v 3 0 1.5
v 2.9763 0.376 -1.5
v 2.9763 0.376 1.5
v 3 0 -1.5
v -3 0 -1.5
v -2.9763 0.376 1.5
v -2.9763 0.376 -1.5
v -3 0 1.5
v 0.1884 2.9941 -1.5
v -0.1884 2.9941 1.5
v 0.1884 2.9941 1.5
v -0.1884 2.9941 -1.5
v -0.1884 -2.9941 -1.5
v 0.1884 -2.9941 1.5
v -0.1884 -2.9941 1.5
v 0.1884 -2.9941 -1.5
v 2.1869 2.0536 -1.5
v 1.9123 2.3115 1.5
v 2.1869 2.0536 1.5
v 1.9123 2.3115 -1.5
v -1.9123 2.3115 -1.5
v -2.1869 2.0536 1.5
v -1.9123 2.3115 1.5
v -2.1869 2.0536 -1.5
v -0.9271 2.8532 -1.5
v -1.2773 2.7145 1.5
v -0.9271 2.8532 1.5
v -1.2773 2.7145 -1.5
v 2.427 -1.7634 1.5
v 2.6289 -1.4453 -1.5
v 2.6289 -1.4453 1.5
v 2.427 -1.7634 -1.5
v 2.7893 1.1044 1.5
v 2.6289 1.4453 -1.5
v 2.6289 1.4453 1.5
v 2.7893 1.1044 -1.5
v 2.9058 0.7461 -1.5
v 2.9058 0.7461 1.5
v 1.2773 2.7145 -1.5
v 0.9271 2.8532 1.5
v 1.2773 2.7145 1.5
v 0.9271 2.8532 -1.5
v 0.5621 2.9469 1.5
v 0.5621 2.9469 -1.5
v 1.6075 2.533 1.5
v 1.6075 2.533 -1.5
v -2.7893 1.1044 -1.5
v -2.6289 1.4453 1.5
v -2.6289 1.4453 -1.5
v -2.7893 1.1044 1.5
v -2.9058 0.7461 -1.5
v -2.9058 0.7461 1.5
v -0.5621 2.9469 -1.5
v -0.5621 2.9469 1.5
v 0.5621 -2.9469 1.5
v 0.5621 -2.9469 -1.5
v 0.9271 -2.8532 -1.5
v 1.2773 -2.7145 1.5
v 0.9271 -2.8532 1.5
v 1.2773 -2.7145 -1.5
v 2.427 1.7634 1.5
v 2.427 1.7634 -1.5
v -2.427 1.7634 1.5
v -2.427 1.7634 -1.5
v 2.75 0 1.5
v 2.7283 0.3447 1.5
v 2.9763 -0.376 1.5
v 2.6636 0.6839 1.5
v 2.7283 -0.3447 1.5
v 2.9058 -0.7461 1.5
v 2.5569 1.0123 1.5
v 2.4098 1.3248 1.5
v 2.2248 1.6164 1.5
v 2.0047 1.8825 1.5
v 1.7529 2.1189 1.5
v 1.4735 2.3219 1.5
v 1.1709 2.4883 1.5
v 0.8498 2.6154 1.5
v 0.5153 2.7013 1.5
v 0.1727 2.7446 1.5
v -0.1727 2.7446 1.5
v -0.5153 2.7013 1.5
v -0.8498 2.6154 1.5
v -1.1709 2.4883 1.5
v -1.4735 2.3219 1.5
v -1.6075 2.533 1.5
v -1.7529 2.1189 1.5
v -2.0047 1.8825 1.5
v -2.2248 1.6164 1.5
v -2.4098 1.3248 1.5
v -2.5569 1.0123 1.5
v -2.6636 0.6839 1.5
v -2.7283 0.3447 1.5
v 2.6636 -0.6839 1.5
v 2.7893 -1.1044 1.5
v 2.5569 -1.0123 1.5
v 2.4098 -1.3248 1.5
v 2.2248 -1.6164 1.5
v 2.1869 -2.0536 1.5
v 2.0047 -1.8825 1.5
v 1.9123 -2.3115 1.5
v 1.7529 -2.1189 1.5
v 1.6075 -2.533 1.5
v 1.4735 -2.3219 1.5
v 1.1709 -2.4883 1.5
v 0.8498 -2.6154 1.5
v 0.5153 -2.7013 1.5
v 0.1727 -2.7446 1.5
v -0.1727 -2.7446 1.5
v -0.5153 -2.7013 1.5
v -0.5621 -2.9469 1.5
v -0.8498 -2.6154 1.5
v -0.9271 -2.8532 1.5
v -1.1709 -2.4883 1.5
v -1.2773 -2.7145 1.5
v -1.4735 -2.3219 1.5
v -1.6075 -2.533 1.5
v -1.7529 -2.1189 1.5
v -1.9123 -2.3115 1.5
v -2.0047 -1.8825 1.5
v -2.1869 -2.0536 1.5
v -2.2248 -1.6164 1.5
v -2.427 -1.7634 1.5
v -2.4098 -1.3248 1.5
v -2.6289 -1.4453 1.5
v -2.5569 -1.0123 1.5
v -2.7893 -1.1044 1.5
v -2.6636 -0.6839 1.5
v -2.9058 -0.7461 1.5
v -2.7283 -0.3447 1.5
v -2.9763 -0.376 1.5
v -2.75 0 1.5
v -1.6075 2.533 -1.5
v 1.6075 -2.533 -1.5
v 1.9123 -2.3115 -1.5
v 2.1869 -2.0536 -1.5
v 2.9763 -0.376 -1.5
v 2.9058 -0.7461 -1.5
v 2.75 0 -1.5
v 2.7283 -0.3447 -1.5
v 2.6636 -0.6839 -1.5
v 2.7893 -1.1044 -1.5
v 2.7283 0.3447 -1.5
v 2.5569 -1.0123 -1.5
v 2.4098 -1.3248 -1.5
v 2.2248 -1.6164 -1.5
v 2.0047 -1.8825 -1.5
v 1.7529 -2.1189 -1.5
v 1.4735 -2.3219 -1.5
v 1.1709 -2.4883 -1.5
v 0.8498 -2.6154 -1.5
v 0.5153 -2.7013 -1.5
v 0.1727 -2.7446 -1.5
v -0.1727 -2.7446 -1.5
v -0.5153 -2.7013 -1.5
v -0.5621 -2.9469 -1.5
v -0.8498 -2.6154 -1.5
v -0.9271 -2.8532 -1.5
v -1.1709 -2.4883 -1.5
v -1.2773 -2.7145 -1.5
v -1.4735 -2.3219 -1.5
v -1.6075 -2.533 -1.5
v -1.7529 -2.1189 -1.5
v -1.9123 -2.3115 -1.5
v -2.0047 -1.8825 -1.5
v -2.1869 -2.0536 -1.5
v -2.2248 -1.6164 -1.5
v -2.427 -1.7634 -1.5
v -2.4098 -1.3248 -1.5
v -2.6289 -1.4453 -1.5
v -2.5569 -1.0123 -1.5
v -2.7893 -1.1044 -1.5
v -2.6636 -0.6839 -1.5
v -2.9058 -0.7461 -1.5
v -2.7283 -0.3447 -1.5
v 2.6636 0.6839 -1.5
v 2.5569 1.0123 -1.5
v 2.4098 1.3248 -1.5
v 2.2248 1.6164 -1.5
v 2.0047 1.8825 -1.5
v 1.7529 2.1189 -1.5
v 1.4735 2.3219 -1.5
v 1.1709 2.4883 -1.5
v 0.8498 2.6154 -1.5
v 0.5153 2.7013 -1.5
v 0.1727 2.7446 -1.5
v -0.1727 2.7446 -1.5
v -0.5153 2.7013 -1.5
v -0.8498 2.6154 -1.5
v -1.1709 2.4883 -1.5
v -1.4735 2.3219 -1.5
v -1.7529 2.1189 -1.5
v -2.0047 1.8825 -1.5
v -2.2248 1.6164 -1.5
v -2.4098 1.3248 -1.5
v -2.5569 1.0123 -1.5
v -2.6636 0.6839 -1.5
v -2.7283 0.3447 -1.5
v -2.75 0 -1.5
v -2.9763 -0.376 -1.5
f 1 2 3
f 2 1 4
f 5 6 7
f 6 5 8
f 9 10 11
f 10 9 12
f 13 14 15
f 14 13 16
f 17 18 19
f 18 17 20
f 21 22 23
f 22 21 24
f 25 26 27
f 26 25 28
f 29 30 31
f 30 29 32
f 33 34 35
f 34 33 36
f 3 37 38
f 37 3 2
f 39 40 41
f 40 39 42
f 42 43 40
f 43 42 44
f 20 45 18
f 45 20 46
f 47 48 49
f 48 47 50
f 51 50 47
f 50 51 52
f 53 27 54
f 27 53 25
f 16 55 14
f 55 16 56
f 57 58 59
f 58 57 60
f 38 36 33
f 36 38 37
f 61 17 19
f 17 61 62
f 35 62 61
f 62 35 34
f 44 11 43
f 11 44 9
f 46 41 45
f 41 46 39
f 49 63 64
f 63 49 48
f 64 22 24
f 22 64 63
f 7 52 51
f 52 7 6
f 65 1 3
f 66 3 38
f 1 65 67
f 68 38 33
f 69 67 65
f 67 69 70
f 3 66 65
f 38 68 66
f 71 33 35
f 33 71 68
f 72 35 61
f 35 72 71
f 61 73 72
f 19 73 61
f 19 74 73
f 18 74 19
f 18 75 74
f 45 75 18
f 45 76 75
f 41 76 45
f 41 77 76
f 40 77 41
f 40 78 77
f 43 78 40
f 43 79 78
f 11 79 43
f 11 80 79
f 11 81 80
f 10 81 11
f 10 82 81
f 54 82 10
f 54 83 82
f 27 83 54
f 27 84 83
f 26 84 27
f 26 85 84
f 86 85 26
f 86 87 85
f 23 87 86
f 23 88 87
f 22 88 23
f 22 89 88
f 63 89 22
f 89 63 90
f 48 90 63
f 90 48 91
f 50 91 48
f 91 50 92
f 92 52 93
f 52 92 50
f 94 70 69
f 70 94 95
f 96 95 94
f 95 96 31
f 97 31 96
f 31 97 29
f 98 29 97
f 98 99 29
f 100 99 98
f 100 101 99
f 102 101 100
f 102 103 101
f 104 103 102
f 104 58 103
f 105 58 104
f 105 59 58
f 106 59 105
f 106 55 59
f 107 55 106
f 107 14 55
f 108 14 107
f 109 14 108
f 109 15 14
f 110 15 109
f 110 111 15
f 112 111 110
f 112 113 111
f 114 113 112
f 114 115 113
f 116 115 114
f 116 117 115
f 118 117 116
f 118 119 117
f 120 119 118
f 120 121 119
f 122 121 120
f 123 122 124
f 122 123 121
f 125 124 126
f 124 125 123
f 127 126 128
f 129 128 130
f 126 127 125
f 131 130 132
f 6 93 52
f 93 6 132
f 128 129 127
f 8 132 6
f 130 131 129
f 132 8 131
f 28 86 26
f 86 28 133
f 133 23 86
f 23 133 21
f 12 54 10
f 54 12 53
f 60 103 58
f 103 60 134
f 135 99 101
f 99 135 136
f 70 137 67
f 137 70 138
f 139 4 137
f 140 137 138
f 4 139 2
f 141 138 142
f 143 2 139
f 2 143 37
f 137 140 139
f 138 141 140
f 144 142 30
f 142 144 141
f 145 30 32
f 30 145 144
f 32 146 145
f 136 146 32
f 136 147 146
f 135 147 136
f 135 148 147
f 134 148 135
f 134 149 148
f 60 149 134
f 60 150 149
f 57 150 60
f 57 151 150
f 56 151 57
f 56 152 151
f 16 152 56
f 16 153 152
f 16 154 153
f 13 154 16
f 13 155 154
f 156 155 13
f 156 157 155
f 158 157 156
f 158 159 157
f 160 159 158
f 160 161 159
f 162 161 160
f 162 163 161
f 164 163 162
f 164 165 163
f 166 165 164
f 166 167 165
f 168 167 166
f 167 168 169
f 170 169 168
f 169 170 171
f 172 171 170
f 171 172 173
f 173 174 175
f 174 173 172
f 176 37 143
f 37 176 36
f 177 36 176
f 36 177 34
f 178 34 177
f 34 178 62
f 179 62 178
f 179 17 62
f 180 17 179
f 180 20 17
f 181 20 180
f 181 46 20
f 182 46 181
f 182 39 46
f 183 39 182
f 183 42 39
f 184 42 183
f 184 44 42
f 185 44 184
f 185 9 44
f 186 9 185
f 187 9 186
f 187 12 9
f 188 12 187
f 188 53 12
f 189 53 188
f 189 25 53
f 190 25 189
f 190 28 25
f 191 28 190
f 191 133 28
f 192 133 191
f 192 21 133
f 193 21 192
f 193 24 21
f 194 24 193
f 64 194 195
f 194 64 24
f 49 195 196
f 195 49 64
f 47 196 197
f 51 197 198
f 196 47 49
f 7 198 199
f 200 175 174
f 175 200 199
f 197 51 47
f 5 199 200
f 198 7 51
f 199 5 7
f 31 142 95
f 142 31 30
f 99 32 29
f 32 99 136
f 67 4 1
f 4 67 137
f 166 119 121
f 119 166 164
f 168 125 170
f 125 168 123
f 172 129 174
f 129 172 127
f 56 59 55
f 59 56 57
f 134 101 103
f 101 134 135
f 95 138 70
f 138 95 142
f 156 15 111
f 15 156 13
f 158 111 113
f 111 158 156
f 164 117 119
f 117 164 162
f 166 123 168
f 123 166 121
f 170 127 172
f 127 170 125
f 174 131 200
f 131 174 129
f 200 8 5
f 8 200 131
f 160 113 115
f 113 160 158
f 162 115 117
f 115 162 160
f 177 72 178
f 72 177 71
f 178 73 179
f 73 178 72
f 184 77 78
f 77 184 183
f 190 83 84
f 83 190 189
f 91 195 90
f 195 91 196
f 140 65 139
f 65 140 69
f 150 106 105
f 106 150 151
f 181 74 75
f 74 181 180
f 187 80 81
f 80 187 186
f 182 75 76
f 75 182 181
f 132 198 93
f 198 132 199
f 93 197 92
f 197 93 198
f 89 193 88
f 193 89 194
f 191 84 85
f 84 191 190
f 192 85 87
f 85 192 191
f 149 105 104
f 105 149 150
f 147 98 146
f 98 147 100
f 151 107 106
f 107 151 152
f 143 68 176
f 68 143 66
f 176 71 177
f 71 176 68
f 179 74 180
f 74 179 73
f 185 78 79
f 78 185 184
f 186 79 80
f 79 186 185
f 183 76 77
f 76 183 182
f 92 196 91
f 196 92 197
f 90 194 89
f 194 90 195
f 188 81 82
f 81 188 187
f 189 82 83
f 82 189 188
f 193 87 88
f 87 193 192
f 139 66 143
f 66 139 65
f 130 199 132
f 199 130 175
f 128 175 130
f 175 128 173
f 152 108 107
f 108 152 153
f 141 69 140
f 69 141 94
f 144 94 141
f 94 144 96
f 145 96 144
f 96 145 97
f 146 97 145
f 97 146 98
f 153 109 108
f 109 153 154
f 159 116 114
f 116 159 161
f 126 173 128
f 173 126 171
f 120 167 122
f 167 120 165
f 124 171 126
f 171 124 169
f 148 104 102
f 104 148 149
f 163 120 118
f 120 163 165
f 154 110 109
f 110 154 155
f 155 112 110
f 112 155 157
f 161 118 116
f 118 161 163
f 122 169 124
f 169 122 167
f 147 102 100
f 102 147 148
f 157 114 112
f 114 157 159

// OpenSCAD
$fn = 50;


difference() {
	union() {
		translate(v = [0, 0, -1.5000000000]) {
			cylinder(h = 3, r = 3.0000000000);
		}
	}
	union() {
		translate(v = [0, 0, -100.0000000000]) {
			cylinder(h = 200, r = 2.7500000000);
		}
	}
}
